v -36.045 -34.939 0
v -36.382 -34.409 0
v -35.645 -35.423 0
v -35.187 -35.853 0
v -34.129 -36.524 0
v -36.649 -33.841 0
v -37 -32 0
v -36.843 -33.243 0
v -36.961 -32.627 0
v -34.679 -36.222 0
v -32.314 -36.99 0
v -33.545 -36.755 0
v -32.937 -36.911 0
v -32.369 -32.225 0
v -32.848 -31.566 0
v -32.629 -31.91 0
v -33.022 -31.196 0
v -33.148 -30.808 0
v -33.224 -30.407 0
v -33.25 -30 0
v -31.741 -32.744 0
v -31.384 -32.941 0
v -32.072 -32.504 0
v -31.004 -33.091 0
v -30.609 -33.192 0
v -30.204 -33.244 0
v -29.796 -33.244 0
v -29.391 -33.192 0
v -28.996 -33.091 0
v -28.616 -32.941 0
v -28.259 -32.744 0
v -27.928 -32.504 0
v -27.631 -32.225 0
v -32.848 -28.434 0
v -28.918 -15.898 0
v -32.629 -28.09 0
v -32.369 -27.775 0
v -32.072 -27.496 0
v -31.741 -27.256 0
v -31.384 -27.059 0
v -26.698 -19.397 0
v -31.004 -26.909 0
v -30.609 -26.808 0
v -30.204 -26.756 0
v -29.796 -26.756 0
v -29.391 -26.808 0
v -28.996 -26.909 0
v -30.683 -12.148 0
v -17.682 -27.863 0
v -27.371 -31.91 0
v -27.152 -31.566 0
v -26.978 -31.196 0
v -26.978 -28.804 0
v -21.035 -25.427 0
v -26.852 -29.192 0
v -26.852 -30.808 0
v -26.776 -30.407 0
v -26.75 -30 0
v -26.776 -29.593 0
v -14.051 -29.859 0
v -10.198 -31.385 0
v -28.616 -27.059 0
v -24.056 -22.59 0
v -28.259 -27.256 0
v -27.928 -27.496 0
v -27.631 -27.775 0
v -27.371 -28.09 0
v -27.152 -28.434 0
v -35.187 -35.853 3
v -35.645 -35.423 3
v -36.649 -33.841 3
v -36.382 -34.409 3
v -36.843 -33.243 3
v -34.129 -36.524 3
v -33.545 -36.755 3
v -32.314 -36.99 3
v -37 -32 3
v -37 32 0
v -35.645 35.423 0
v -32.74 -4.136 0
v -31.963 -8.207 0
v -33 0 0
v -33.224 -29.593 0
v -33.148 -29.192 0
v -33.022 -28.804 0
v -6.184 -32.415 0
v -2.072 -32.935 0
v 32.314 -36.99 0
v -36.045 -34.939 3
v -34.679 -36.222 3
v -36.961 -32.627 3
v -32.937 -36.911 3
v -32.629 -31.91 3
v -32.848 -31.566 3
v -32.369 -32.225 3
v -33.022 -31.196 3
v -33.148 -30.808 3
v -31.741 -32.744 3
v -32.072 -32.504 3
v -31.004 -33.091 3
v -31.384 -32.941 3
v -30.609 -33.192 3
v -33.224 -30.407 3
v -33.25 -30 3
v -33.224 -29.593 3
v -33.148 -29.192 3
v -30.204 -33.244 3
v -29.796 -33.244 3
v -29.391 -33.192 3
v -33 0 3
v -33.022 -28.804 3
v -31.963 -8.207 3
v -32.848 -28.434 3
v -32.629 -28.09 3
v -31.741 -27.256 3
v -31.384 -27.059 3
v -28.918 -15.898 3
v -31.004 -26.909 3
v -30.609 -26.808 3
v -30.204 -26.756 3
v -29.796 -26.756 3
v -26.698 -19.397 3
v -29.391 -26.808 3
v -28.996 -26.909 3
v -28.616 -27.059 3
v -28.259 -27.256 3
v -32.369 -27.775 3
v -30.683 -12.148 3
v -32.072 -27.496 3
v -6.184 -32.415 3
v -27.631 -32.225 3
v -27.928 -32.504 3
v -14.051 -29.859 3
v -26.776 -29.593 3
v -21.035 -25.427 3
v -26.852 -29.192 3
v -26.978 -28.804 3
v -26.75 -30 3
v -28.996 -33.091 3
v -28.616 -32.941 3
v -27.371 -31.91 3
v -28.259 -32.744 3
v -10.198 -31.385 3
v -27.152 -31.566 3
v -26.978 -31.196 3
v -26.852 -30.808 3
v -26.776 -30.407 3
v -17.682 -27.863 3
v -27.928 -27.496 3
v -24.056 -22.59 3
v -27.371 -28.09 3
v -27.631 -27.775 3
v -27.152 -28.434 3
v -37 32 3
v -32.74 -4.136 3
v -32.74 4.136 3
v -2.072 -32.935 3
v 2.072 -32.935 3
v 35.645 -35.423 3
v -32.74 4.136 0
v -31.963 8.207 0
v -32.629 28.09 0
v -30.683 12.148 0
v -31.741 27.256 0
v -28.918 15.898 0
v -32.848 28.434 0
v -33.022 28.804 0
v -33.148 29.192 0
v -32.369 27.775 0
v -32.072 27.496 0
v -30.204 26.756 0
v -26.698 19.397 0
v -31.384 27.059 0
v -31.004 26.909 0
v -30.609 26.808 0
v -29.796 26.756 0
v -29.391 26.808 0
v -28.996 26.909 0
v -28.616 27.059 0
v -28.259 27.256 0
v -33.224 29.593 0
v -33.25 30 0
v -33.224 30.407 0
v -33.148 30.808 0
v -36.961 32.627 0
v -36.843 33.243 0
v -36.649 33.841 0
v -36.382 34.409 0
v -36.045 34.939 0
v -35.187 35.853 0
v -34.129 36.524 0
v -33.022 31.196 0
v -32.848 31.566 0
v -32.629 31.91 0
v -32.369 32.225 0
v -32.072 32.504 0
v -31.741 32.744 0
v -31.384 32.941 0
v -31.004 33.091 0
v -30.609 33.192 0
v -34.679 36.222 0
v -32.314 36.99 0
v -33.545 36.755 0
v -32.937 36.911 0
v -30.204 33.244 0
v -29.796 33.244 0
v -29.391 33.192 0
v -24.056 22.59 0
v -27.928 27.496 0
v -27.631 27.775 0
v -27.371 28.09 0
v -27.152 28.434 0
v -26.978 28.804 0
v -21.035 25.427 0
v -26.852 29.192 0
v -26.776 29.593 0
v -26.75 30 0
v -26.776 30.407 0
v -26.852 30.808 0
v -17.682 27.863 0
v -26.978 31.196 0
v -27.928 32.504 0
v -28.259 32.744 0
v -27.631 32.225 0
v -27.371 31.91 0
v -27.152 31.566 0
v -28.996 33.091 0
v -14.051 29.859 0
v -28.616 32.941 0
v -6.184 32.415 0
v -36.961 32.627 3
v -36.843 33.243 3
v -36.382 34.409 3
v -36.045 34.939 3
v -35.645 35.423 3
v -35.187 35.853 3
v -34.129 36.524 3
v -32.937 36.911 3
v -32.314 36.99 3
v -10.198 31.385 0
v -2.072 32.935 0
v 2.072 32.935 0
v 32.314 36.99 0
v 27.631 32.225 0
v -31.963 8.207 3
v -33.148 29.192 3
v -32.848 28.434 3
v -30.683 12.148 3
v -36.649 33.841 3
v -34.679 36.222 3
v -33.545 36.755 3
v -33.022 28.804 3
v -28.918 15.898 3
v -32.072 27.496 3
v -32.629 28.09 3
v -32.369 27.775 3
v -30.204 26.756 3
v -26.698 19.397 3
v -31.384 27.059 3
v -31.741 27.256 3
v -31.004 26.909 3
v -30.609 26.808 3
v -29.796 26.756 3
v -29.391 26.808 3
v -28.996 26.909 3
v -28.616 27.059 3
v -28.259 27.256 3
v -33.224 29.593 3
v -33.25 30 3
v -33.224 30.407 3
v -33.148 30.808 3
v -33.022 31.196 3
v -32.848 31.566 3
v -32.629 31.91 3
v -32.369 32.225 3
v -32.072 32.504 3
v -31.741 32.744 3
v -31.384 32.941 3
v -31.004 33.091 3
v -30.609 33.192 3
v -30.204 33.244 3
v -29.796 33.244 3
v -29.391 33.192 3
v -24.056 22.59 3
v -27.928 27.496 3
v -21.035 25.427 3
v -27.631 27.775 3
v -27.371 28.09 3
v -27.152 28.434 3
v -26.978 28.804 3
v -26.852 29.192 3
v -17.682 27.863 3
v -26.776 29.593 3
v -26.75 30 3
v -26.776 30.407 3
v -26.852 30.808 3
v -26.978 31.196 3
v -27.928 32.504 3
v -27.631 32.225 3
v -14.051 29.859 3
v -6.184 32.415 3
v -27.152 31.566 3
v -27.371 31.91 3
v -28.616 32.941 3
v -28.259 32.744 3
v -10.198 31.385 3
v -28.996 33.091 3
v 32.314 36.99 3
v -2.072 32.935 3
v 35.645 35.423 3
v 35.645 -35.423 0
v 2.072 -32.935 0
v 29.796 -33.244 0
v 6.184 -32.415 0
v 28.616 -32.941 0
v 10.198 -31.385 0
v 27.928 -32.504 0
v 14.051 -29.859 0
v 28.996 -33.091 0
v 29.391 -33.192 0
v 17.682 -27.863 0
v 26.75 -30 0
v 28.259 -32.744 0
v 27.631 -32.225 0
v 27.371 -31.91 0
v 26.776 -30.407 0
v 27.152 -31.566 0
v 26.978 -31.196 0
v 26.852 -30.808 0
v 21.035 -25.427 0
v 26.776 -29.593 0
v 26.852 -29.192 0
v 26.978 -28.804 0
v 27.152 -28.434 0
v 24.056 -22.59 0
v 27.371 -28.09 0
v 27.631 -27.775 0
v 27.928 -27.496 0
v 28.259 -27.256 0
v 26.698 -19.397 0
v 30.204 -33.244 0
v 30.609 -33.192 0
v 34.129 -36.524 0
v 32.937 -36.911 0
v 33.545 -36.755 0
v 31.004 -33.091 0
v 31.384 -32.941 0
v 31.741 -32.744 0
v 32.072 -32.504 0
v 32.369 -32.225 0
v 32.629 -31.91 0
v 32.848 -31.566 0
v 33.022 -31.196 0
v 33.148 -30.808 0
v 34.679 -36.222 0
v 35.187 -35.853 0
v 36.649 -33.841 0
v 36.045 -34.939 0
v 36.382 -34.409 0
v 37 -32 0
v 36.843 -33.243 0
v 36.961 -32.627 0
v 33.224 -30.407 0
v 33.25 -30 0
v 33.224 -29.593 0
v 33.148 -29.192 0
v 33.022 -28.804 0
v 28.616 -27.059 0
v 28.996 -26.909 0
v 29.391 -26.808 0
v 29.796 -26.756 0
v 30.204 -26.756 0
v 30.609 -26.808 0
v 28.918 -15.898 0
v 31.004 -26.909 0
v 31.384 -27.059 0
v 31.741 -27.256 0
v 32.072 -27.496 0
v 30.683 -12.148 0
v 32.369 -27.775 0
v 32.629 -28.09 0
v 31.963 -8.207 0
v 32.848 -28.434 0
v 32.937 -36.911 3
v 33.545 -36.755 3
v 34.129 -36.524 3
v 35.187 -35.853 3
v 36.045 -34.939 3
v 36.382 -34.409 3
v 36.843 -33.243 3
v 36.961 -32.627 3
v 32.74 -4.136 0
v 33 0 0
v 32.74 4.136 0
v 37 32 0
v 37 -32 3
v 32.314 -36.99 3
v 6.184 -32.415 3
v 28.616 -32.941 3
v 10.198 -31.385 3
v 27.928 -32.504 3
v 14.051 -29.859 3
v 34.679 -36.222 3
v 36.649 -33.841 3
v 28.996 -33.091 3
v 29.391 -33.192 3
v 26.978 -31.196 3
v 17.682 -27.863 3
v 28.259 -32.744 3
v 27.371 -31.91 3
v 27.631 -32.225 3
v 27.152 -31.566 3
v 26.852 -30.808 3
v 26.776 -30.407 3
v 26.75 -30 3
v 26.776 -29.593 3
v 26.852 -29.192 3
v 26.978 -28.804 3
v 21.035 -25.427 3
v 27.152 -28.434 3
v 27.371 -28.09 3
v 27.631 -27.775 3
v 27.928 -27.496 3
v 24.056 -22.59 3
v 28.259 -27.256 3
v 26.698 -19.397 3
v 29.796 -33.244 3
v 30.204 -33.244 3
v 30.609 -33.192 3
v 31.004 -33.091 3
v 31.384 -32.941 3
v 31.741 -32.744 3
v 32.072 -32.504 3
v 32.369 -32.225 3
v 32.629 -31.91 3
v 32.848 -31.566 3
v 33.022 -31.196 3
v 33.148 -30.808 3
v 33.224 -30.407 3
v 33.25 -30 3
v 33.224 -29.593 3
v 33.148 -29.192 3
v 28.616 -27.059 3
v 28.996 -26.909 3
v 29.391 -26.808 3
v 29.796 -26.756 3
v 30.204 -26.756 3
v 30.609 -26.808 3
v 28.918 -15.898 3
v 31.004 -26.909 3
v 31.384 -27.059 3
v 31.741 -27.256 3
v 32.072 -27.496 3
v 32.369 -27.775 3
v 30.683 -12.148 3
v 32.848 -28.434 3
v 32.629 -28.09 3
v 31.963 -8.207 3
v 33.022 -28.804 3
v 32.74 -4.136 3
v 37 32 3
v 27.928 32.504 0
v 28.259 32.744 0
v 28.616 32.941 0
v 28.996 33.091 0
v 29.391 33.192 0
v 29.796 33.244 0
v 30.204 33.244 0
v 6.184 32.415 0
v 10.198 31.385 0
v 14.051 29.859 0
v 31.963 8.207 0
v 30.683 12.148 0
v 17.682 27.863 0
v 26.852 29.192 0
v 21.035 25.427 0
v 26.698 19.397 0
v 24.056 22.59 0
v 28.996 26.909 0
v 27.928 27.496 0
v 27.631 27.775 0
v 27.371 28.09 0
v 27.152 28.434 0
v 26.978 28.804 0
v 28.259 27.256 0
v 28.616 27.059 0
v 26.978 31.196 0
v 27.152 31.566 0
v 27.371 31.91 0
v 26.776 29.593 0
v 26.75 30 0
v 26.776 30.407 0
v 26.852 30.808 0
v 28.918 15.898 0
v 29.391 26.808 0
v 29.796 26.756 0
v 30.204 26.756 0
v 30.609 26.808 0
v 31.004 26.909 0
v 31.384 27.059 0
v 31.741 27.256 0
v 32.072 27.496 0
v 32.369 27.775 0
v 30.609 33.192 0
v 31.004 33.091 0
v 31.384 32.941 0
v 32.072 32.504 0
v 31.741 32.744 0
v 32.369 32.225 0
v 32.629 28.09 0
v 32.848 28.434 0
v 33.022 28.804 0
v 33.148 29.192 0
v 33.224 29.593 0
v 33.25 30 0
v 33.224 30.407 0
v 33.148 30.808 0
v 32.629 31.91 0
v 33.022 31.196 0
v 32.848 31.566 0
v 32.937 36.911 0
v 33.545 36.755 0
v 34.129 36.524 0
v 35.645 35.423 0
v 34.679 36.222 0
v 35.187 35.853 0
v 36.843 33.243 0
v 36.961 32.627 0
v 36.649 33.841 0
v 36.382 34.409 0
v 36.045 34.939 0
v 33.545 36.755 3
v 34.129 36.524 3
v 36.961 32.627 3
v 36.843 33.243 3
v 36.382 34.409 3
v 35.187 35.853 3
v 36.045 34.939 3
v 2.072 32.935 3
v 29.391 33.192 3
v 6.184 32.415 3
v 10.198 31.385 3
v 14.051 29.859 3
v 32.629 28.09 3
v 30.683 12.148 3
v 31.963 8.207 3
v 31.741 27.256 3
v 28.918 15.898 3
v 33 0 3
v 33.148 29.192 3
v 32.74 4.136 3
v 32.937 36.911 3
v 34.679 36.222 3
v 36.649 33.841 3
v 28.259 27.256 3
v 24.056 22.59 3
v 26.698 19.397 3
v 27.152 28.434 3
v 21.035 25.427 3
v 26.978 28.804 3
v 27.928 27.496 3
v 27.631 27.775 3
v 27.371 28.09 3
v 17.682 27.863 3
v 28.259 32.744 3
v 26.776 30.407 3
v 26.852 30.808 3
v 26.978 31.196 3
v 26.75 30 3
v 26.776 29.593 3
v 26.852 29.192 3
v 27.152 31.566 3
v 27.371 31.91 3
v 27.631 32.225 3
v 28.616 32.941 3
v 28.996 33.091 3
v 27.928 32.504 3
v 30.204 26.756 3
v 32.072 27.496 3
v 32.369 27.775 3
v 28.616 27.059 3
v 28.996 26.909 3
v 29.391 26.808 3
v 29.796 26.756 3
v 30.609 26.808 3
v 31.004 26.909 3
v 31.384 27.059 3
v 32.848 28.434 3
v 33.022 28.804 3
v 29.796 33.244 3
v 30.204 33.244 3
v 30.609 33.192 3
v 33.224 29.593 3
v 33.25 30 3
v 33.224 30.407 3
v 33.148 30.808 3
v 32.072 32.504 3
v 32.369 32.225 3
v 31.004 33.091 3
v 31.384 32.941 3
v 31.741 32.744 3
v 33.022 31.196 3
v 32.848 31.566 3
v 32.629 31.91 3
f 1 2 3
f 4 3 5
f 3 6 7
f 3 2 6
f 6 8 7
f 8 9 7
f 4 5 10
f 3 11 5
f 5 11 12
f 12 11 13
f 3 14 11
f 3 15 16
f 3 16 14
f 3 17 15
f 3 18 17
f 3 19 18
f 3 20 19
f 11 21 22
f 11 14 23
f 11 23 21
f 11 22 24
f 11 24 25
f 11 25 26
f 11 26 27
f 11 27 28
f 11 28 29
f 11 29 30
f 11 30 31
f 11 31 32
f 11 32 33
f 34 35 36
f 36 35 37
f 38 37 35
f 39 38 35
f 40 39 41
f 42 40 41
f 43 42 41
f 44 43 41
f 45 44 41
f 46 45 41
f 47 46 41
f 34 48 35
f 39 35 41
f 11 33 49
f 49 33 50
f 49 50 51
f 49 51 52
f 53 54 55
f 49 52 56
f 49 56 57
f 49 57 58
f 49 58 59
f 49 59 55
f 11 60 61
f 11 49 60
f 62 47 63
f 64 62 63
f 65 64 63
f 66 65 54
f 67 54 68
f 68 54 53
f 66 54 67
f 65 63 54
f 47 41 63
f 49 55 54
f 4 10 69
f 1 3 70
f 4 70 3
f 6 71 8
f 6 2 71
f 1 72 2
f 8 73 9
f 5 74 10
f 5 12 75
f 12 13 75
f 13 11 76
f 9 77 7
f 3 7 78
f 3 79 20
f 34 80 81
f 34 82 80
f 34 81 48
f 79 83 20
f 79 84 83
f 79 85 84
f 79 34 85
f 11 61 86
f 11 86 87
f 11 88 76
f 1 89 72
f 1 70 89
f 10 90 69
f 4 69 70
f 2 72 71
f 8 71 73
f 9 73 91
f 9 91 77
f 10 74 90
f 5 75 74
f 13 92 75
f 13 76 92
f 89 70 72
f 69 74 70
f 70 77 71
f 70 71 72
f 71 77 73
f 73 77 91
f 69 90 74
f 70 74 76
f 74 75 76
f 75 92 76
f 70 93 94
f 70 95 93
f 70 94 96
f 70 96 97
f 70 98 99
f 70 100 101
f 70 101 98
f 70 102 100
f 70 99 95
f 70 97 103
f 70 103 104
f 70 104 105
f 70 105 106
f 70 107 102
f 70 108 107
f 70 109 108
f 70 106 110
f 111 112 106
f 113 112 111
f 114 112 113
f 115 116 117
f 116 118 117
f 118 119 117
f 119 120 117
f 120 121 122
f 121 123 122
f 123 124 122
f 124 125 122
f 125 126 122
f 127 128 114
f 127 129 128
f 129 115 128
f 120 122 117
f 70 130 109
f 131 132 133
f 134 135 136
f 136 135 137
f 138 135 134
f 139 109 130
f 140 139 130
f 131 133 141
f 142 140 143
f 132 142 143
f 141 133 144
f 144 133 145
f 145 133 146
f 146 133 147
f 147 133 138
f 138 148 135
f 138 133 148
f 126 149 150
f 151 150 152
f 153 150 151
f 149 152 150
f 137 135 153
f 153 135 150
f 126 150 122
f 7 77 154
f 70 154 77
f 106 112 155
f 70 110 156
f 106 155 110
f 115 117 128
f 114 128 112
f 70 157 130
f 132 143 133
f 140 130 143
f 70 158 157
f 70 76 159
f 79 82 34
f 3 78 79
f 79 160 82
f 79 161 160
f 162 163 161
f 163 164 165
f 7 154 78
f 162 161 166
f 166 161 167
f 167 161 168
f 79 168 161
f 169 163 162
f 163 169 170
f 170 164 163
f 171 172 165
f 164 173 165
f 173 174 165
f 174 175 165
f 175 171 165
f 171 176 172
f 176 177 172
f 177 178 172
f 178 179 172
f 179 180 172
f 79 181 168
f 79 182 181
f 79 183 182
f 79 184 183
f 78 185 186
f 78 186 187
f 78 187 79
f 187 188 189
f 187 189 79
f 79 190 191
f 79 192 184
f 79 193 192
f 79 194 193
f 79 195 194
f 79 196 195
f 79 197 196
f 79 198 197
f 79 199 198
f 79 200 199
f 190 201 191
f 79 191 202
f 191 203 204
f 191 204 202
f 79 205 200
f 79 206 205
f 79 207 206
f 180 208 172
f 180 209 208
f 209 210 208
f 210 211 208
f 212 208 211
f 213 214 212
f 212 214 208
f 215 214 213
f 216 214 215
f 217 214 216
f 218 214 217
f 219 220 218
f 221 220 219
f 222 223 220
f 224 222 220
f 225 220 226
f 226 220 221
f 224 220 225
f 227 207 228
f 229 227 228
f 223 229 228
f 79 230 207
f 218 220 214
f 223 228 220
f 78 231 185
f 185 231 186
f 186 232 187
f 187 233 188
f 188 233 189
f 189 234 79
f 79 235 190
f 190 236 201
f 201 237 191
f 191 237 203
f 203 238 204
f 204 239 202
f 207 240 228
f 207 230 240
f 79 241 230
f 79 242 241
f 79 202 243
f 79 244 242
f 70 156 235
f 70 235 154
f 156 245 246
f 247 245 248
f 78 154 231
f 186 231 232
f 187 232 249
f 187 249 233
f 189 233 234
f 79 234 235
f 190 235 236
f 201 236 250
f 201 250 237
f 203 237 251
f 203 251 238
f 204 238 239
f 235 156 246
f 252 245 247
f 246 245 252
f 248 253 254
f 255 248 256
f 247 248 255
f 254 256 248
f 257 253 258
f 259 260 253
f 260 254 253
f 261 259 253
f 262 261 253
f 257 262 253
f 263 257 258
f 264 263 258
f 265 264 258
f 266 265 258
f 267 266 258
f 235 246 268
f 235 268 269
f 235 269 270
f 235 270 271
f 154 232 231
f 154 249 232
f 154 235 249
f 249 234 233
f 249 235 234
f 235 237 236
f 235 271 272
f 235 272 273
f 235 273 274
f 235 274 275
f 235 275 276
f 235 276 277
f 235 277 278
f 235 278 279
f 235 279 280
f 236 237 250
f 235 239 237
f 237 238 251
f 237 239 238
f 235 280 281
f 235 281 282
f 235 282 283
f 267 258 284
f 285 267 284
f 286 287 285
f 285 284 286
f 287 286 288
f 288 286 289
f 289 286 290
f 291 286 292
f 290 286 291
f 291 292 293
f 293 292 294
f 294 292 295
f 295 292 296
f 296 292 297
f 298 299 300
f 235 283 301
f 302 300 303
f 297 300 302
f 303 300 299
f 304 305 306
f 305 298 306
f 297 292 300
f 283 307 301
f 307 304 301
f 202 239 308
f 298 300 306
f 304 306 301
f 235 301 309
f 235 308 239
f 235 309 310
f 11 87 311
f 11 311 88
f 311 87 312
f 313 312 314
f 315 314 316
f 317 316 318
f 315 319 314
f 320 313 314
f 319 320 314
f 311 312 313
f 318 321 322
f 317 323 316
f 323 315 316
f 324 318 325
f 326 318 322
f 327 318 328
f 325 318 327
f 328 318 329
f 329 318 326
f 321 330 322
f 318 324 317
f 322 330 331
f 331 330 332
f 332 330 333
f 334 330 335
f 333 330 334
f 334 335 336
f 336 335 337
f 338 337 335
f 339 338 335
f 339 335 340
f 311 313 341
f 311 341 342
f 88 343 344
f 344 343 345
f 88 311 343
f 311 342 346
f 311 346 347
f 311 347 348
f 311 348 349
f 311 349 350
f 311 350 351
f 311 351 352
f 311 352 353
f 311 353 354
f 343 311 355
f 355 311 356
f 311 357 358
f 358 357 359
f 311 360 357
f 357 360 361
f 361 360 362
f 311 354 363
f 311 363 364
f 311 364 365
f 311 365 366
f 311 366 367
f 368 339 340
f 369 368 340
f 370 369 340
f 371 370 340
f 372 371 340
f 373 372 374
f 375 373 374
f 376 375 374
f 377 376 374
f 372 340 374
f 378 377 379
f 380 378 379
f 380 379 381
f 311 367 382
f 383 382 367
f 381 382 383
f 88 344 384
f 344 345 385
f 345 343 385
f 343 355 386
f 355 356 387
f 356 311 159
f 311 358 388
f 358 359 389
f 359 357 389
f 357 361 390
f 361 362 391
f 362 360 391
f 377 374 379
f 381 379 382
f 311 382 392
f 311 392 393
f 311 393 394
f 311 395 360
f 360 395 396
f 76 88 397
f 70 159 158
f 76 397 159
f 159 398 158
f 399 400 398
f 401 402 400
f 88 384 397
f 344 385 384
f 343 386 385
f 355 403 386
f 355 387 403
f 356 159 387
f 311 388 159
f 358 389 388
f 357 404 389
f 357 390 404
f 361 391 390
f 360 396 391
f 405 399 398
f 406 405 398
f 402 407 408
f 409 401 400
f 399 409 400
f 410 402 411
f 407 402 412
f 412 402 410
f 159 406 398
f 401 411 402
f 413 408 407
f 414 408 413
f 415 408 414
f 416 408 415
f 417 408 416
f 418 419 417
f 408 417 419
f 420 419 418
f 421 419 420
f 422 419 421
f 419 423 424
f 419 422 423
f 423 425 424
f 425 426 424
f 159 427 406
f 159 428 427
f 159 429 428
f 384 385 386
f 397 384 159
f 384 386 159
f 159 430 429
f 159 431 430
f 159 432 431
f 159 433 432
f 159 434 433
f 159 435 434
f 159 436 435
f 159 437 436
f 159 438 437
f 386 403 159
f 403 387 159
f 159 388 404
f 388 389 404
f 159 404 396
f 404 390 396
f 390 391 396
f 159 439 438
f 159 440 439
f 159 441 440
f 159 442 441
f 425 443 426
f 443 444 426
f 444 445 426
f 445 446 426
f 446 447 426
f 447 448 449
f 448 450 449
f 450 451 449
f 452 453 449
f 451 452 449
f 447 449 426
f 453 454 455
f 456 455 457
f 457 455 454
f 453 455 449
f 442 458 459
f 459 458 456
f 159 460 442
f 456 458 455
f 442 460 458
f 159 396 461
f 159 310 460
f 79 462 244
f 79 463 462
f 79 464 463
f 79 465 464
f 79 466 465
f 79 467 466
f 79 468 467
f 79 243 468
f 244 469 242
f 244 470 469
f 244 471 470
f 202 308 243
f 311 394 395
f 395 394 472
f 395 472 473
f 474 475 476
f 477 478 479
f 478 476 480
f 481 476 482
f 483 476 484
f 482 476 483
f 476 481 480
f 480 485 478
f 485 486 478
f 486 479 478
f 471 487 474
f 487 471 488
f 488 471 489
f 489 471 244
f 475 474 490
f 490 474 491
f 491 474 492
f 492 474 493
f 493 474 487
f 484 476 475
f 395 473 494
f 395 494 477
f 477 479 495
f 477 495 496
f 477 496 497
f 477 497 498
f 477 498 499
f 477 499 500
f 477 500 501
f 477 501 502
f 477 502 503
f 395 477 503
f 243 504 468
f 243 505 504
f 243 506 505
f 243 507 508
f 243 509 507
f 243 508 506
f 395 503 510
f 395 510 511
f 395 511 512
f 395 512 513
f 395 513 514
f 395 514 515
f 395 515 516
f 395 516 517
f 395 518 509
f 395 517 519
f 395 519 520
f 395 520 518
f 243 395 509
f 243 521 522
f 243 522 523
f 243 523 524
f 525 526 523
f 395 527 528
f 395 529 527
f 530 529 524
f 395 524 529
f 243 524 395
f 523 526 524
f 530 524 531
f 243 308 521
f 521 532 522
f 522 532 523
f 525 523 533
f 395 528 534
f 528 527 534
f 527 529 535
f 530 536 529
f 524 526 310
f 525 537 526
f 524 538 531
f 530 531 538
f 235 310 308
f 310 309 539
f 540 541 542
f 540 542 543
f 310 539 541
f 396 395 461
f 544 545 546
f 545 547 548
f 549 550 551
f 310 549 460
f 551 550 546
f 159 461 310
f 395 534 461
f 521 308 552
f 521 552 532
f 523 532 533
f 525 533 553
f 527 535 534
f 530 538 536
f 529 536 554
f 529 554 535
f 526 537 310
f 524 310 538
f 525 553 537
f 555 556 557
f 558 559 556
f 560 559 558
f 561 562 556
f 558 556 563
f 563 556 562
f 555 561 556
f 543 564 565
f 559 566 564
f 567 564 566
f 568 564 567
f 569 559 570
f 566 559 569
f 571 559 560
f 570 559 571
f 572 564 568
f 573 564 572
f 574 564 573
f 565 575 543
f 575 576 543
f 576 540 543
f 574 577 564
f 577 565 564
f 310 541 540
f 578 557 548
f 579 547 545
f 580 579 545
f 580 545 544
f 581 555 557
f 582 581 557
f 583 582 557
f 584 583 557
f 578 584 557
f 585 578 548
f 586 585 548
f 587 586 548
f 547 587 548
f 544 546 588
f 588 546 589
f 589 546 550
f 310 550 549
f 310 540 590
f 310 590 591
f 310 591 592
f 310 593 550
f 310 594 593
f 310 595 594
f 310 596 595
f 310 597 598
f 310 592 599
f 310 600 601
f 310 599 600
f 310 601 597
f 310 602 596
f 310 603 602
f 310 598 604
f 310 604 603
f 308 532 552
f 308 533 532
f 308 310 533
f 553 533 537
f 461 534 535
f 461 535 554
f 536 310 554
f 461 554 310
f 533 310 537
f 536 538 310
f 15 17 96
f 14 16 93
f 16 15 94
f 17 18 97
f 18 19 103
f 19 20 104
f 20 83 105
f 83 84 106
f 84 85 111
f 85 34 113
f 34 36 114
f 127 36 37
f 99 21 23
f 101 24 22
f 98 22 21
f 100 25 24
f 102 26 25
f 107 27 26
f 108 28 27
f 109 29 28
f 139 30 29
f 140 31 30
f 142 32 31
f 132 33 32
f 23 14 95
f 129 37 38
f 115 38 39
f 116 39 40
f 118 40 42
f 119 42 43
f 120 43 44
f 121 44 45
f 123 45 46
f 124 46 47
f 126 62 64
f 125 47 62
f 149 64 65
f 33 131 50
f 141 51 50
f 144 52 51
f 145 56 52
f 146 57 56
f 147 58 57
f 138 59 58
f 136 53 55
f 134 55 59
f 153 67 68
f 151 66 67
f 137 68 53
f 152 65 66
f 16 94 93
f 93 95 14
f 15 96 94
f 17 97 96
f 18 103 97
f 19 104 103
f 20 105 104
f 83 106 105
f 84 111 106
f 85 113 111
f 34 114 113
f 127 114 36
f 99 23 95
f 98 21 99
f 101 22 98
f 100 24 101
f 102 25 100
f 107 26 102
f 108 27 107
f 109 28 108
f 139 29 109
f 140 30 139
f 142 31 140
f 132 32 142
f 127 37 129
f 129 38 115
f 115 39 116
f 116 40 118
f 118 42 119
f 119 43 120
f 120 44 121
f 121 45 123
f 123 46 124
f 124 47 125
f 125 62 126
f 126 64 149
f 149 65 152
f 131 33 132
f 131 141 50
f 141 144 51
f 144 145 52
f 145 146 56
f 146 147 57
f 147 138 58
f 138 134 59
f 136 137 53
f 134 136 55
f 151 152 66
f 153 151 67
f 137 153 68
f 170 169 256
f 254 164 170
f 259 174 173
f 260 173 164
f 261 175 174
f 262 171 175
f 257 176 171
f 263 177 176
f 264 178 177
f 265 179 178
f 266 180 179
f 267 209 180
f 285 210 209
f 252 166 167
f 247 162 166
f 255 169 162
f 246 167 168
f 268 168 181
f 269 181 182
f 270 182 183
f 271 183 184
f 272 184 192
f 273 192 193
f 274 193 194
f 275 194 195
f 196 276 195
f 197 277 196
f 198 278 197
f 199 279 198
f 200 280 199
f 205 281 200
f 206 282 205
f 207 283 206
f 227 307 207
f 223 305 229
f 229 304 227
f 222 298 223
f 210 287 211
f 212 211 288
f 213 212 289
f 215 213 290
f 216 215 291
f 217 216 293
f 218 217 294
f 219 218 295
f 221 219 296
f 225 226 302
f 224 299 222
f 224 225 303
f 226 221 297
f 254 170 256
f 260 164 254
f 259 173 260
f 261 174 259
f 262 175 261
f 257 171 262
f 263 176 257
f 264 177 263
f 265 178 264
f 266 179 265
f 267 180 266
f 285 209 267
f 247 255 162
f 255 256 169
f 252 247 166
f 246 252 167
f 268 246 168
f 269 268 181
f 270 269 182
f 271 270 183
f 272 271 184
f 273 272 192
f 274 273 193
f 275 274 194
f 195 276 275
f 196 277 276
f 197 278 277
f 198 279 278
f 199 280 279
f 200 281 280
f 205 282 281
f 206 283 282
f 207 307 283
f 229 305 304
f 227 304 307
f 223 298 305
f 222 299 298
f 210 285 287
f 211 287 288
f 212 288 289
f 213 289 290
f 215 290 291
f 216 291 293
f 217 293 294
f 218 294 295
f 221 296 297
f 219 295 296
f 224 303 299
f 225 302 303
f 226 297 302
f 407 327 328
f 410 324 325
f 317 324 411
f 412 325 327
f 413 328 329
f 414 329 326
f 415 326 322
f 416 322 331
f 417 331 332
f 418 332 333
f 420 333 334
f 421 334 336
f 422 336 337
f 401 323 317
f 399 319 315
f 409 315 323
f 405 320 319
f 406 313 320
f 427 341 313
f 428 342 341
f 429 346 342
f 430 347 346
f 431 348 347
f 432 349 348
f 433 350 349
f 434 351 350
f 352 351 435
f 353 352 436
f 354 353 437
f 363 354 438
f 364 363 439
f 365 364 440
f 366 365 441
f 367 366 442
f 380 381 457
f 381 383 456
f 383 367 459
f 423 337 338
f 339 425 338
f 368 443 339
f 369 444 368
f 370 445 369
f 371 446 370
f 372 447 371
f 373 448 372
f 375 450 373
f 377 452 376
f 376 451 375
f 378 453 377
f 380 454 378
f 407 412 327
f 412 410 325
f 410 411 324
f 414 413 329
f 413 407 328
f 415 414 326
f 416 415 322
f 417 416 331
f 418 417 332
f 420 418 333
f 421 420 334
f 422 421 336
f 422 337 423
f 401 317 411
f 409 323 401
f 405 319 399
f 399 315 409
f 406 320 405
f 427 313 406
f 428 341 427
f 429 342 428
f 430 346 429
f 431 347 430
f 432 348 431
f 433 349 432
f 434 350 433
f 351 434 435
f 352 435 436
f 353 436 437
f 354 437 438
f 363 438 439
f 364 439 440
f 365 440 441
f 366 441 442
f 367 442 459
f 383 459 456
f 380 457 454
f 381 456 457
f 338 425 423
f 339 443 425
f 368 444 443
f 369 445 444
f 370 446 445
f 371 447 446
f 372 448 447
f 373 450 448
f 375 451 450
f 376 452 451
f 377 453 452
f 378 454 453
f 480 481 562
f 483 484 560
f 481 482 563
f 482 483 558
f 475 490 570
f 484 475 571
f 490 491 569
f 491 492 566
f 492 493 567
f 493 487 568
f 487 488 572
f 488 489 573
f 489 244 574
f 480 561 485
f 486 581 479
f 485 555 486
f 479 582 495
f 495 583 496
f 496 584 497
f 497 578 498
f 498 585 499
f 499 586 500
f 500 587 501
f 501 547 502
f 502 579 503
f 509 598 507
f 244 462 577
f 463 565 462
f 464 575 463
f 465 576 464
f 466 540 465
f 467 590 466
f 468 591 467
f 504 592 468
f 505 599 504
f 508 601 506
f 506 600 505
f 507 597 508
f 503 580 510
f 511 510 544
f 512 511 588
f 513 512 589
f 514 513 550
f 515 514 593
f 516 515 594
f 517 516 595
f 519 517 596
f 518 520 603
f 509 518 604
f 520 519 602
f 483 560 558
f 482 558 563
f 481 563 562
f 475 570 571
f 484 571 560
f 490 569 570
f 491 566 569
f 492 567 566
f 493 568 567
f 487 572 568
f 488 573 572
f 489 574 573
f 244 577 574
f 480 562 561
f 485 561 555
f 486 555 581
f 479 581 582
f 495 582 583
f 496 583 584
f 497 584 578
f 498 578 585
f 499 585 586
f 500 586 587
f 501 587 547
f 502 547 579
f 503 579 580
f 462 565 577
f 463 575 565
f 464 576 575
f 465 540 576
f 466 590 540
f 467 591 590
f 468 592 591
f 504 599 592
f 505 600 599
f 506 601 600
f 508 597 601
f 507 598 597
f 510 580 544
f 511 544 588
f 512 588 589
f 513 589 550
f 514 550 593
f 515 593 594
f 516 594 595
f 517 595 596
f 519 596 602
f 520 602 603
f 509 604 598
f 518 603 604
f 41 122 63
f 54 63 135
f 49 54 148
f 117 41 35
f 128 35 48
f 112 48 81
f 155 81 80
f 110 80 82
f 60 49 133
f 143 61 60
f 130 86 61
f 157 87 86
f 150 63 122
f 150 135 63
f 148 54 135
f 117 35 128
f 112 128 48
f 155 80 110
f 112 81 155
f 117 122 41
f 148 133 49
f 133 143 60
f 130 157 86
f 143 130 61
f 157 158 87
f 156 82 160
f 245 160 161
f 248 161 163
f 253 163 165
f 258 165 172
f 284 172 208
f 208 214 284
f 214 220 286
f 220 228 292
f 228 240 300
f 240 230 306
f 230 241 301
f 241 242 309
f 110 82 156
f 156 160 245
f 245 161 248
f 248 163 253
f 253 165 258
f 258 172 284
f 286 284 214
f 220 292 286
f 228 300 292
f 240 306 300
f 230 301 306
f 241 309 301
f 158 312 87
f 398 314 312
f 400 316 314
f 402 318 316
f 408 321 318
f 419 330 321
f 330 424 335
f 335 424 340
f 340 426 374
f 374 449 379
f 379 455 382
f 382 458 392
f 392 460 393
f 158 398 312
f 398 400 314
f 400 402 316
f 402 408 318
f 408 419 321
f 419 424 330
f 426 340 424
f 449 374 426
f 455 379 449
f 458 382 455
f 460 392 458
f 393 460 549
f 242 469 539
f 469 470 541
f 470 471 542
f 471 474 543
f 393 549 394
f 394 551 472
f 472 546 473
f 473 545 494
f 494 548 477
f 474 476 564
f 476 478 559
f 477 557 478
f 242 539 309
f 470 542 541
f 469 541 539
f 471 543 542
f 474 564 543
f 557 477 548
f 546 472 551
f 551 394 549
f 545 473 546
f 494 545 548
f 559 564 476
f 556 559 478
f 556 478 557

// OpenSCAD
$fn = 50;

difference() {
	union() {
		hull() {
			translate(v = [-32.0, 32.0, 0]) {
				cylinder(h = 3, r = 5);
			}
			translate(v = [32.0, 32.0, 0]) {
				cylinder(h = 3, r = 5);
			}
			translate(v = [-32.0, -32.0, 0]) {
				cylinder(h = 3, r = 5);
			}
			translate(v = [32.0, -32.0, 0]) {
				cylinder(h = 3, r = 5);
			}
		}
	}
	union() {
		translate(v = [-30.0, -30.0, -100.0]) {
			cylinder(h = 200, r = 3.25);
		}
		translate(v = [-30.0, 30.0, -100.0]) {
			cylinder(h = 200, r = 3.25);
		}
		translate(v = [30.0, -30.0, -100.0]) {
			cylinder(h = 200, r = 3.25);
		}
		translate(v = [30.0, 30.0, -100.0]) {
			cylinder(h = 200, r = 3.25);
		}
		translate(v = [-30.0, -30.0, -100.0]) {
			cylinder(h = 200, r = 1.8);
		}
		translate(v = [-30.0, 30.0, -100.0]) {
			cylinder(h = 200, r = 1.8);
		}
		translate(v = [30.0, -30.0, -100.0]) {
			cylinder(h = 200, r = 1.8);
		}
		translate(v = [30.0, 30.0, -100.0]) {
			cylinder(h = 200, r = 1.8);
		}
		cylinder(h = 3, r = 33.0);
	}
}
